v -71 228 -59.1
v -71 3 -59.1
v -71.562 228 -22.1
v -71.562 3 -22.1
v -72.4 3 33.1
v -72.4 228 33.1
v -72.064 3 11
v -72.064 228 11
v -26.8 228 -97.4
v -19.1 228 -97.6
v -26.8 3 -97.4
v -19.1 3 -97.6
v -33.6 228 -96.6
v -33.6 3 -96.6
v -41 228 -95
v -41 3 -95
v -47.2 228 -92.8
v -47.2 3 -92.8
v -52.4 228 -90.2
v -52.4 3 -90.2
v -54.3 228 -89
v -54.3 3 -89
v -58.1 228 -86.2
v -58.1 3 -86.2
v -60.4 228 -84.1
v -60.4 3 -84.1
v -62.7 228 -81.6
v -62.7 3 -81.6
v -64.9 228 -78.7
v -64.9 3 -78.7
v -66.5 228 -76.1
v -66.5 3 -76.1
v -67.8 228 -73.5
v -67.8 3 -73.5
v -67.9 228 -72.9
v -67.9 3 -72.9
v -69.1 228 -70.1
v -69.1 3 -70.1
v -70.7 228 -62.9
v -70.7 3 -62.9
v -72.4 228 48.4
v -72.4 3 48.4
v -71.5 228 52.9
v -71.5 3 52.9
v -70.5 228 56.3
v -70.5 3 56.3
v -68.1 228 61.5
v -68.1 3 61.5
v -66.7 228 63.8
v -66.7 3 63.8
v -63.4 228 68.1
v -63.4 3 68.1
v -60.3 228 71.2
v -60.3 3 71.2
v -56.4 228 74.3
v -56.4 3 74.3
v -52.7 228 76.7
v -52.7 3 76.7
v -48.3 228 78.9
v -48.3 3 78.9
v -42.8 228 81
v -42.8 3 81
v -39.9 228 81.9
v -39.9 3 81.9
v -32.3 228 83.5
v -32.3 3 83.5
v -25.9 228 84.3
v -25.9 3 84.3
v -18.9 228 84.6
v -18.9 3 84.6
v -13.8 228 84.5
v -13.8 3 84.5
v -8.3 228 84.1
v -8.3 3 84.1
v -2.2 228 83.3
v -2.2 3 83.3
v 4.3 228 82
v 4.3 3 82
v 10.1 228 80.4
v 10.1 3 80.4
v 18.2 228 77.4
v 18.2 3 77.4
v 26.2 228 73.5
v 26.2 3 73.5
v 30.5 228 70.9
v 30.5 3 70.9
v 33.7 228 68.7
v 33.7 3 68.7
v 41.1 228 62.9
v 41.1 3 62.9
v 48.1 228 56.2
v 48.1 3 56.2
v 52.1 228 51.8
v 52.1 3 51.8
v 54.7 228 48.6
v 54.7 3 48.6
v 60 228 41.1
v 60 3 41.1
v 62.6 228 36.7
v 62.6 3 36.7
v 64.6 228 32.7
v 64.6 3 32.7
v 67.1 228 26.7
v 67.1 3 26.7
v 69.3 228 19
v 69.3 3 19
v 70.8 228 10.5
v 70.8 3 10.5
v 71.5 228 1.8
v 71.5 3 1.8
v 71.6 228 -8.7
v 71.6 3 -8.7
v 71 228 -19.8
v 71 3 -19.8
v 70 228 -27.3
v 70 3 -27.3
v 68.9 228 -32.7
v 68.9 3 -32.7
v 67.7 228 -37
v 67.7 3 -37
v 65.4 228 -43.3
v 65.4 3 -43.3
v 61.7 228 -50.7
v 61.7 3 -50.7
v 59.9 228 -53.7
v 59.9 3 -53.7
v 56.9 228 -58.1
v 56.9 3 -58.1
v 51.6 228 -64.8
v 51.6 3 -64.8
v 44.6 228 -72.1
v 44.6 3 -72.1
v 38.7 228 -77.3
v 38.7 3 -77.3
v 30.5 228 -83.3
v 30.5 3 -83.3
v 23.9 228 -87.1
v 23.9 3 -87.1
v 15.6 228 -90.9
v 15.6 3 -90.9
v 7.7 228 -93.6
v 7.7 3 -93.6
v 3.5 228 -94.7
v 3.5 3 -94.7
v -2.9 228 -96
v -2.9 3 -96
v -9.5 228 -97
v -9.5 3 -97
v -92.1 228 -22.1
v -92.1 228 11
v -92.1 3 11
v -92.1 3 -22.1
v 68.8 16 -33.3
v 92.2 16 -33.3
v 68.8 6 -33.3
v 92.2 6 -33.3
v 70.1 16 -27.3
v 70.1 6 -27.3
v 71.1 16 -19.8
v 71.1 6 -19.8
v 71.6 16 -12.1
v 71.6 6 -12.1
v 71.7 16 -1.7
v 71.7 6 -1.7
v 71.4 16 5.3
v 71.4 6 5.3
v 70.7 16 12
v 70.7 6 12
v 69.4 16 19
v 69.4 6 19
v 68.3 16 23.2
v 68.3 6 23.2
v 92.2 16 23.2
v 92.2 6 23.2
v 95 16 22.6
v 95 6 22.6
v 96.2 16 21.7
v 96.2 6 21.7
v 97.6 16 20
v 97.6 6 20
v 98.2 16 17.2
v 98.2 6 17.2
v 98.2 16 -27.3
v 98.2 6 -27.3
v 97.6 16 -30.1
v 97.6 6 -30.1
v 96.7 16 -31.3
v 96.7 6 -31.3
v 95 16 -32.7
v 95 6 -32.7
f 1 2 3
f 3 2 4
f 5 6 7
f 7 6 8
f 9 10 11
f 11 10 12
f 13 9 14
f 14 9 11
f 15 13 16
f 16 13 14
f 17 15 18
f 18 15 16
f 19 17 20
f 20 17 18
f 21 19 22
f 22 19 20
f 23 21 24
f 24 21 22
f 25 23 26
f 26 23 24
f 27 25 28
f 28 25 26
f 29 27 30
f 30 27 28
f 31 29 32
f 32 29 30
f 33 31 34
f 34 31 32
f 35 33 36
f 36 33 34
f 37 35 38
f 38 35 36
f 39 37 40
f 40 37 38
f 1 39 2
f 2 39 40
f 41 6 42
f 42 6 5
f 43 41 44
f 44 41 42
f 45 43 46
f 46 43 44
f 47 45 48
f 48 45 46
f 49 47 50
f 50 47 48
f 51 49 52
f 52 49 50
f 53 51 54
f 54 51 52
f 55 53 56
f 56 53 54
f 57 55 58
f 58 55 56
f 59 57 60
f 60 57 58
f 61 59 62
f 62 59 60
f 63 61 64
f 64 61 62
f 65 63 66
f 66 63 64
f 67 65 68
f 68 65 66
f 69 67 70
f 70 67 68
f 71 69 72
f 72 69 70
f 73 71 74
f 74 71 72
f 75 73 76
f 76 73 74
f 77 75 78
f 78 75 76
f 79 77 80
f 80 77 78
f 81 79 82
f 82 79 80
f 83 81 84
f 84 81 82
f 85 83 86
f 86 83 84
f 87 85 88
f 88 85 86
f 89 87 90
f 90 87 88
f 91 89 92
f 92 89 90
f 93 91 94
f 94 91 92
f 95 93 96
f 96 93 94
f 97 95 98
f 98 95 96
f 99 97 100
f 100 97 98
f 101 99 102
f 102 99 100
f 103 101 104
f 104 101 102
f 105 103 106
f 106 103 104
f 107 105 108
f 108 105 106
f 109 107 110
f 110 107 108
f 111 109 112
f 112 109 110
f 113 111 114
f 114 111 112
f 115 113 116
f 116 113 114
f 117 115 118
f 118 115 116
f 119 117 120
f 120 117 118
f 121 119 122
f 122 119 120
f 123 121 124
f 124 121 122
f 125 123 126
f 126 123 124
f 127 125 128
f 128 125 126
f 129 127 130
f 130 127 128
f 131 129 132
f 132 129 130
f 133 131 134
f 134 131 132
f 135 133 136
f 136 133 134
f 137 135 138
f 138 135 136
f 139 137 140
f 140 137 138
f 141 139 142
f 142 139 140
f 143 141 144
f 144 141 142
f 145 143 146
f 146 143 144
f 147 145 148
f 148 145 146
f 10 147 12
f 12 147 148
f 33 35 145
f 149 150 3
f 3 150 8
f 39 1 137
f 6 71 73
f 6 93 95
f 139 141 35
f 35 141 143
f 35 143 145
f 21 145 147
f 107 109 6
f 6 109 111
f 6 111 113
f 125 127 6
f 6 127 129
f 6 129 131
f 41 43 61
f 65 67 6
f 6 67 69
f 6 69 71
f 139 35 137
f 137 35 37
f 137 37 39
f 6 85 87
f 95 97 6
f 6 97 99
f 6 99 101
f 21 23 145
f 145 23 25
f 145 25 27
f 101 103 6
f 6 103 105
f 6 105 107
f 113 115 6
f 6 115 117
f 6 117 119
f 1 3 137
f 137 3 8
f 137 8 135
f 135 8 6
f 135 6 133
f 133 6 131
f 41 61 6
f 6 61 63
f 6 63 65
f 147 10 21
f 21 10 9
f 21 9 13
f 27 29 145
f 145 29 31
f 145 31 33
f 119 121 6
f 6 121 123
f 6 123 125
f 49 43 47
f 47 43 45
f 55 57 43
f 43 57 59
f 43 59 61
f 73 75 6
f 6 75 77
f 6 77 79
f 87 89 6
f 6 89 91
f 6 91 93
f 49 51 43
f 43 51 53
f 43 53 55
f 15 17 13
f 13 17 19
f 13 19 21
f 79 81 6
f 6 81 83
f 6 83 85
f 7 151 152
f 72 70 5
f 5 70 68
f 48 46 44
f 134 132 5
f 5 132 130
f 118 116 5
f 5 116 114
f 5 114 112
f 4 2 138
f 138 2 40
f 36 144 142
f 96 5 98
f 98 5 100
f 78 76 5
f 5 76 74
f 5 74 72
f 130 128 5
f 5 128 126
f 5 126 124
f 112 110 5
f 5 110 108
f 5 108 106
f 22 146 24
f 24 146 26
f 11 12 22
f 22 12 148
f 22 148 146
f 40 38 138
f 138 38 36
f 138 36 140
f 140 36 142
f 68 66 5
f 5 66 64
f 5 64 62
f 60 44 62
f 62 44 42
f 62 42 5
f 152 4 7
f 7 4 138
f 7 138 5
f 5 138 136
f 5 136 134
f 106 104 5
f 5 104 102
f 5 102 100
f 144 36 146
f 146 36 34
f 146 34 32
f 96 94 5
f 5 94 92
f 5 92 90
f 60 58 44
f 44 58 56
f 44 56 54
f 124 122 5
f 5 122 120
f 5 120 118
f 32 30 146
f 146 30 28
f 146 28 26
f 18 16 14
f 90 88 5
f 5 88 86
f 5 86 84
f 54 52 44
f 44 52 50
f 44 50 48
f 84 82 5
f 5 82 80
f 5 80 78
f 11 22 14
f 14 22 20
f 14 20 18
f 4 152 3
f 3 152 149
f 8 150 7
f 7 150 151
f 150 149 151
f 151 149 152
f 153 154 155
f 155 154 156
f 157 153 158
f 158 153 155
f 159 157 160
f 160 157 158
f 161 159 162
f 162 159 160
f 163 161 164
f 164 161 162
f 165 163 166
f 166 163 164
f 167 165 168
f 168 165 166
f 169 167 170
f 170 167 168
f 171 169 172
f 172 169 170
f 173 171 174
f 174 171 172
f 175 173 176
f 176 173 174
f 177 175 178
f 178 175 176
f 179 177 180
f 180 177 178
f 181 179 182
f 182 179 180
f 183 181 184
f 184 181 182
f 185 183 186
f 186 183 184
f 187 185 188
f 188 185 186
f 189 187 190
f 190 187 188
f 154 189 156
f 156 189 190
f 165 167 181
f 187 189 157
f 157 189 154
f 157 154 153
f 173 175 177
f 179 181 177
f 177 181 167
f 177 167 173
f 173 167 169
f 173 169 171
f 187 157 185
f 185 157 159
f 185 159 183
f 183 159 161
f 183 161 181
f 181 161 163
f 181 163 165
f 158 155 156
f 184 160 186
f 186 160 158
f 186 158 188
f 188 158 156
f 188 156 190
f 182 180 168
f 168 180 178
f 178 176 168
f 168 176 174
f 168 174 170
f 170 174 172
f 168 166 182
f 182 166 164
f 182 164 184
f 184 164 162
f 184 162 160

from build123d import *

# Parameters (mm, degrees)
BIN_BODY_DEPTH         = 225
SKETCH2_W              = 20.6
SKETCH2_H              = 33.1
ROD_CHANNEL_DEPTH      = 225
PEDAL_PAD_TOP_16_DEPTH = 10


with BuildPart() as part:
    # Sketch1 → Bin body (new body)
    with BuildSketch(Plane(origin=(0, 3, 0), x_dir=(1, 0, 0), z_dir=(0, 1, 0))):
        Polygon((-26.8, 97.4), (-33.6, 96.6), (-41, 95), (-47.2, 92.8), (-52.4, 90.2), (-54.3, 89), (-58.1, 86.2), (-60.4, 84.1), (-62.7, 81.6), (-64.9, 78.7), (-66.5, 76.1), (-67.8, 73.5), (-67.9, 72.9), (-69.1, 70.1), (-70.7, 62.9), (-71, 59.1), (-72.4, -33.1), (-72.4, -48.4), (-71.5, -52.9), (-70.5, -56.3), (-68.1, -61.5), (-66.7, -63.8), (-63.4, -68.1), (-60.3, -71.2), (-56.4, -74.3), (-52.7, -76.7), (-48.3, -78.9), (-42.8, -81), (-39.9, -81.9), (-32.3, -83.5), (-25.9, -84.3), (-18.9, -84.6), (-13.8, -84.5), (-8.3, -84.1), (-2.2, -83.3), (4.3, -82), (10.1, -80.4), (18.2, -77.4), (26.2, -73.5), (30.5, -70.9), (33.7, -68.7), (41.1, -62.9), (48.1, -56.2), (52.1, -51.8), (54.7, -48.6), (60, -41.1), (62.6, -36.7), (64.6, -32.7), (67.1, -26.7), (69.3, -19), (70.8, -10.5), (71.5, -1.8), (71.6, 8.7), (71, 19.8), (70, 27.3), (68.9, 32.7), (67.7, 37), (65.4, 43.3), (61.7, 50.7), (59.9, 53.7), (56.9, 58.1), (51.6, 64.8), (44.6, 72.1), (38.7, 77.3), (30.5, 83.3), (23.9, 87.1), (15.6, 90.9), (7.7, 93.6), (3.5, 94.7), (-2.9, 96), (-9.5, 97), (-19.1, 97.6), align=None)
    extrude(amount=BIN_BODY_DEPTH)

    # Sketch2 → Rod channel (add)
    with BuildSketch(Plane(origin=(0, 3, 0), x_dir=(1, 0, 0), z_dir=(0, 1, 0))):
        with Locations((-81.8, 5.55)):
            Rectangle(SKETCH2_W, SKETCH2_H)
    extrude(amount=ROD_CHANNEL_DEPTH)


with BuildPart() as body_2:
    # Sketch3 → Pedal pad (top 16) (new body)
    with BuildSketch(Plane(origin=(0, 6, 0), x_dir=(1, 0, 0), z_dir=(0, 1, 0))):
        Polygon((68.8, 33.3), (70.1, 27.3), (71.1, 19.8), (71.6, 12.1), (71.7, 1.7), (71.4, -5.3), (70.7, -12), (69.4, -19), (68.3, -23.2), (92.2, -23.2), (95, -22.6), (96.2, -21.7), (97.6, -20), (98.2, -17.2), (98.2, 27.3), (97.6, 30.1), (96.7, 31.3), (95, 32.7), (92.2, 33.3), align=None)
    extrude(amount=PEDAL_PAD_TOP_16_DEPTH)


solid = Compound([part.part, body_2.part])
